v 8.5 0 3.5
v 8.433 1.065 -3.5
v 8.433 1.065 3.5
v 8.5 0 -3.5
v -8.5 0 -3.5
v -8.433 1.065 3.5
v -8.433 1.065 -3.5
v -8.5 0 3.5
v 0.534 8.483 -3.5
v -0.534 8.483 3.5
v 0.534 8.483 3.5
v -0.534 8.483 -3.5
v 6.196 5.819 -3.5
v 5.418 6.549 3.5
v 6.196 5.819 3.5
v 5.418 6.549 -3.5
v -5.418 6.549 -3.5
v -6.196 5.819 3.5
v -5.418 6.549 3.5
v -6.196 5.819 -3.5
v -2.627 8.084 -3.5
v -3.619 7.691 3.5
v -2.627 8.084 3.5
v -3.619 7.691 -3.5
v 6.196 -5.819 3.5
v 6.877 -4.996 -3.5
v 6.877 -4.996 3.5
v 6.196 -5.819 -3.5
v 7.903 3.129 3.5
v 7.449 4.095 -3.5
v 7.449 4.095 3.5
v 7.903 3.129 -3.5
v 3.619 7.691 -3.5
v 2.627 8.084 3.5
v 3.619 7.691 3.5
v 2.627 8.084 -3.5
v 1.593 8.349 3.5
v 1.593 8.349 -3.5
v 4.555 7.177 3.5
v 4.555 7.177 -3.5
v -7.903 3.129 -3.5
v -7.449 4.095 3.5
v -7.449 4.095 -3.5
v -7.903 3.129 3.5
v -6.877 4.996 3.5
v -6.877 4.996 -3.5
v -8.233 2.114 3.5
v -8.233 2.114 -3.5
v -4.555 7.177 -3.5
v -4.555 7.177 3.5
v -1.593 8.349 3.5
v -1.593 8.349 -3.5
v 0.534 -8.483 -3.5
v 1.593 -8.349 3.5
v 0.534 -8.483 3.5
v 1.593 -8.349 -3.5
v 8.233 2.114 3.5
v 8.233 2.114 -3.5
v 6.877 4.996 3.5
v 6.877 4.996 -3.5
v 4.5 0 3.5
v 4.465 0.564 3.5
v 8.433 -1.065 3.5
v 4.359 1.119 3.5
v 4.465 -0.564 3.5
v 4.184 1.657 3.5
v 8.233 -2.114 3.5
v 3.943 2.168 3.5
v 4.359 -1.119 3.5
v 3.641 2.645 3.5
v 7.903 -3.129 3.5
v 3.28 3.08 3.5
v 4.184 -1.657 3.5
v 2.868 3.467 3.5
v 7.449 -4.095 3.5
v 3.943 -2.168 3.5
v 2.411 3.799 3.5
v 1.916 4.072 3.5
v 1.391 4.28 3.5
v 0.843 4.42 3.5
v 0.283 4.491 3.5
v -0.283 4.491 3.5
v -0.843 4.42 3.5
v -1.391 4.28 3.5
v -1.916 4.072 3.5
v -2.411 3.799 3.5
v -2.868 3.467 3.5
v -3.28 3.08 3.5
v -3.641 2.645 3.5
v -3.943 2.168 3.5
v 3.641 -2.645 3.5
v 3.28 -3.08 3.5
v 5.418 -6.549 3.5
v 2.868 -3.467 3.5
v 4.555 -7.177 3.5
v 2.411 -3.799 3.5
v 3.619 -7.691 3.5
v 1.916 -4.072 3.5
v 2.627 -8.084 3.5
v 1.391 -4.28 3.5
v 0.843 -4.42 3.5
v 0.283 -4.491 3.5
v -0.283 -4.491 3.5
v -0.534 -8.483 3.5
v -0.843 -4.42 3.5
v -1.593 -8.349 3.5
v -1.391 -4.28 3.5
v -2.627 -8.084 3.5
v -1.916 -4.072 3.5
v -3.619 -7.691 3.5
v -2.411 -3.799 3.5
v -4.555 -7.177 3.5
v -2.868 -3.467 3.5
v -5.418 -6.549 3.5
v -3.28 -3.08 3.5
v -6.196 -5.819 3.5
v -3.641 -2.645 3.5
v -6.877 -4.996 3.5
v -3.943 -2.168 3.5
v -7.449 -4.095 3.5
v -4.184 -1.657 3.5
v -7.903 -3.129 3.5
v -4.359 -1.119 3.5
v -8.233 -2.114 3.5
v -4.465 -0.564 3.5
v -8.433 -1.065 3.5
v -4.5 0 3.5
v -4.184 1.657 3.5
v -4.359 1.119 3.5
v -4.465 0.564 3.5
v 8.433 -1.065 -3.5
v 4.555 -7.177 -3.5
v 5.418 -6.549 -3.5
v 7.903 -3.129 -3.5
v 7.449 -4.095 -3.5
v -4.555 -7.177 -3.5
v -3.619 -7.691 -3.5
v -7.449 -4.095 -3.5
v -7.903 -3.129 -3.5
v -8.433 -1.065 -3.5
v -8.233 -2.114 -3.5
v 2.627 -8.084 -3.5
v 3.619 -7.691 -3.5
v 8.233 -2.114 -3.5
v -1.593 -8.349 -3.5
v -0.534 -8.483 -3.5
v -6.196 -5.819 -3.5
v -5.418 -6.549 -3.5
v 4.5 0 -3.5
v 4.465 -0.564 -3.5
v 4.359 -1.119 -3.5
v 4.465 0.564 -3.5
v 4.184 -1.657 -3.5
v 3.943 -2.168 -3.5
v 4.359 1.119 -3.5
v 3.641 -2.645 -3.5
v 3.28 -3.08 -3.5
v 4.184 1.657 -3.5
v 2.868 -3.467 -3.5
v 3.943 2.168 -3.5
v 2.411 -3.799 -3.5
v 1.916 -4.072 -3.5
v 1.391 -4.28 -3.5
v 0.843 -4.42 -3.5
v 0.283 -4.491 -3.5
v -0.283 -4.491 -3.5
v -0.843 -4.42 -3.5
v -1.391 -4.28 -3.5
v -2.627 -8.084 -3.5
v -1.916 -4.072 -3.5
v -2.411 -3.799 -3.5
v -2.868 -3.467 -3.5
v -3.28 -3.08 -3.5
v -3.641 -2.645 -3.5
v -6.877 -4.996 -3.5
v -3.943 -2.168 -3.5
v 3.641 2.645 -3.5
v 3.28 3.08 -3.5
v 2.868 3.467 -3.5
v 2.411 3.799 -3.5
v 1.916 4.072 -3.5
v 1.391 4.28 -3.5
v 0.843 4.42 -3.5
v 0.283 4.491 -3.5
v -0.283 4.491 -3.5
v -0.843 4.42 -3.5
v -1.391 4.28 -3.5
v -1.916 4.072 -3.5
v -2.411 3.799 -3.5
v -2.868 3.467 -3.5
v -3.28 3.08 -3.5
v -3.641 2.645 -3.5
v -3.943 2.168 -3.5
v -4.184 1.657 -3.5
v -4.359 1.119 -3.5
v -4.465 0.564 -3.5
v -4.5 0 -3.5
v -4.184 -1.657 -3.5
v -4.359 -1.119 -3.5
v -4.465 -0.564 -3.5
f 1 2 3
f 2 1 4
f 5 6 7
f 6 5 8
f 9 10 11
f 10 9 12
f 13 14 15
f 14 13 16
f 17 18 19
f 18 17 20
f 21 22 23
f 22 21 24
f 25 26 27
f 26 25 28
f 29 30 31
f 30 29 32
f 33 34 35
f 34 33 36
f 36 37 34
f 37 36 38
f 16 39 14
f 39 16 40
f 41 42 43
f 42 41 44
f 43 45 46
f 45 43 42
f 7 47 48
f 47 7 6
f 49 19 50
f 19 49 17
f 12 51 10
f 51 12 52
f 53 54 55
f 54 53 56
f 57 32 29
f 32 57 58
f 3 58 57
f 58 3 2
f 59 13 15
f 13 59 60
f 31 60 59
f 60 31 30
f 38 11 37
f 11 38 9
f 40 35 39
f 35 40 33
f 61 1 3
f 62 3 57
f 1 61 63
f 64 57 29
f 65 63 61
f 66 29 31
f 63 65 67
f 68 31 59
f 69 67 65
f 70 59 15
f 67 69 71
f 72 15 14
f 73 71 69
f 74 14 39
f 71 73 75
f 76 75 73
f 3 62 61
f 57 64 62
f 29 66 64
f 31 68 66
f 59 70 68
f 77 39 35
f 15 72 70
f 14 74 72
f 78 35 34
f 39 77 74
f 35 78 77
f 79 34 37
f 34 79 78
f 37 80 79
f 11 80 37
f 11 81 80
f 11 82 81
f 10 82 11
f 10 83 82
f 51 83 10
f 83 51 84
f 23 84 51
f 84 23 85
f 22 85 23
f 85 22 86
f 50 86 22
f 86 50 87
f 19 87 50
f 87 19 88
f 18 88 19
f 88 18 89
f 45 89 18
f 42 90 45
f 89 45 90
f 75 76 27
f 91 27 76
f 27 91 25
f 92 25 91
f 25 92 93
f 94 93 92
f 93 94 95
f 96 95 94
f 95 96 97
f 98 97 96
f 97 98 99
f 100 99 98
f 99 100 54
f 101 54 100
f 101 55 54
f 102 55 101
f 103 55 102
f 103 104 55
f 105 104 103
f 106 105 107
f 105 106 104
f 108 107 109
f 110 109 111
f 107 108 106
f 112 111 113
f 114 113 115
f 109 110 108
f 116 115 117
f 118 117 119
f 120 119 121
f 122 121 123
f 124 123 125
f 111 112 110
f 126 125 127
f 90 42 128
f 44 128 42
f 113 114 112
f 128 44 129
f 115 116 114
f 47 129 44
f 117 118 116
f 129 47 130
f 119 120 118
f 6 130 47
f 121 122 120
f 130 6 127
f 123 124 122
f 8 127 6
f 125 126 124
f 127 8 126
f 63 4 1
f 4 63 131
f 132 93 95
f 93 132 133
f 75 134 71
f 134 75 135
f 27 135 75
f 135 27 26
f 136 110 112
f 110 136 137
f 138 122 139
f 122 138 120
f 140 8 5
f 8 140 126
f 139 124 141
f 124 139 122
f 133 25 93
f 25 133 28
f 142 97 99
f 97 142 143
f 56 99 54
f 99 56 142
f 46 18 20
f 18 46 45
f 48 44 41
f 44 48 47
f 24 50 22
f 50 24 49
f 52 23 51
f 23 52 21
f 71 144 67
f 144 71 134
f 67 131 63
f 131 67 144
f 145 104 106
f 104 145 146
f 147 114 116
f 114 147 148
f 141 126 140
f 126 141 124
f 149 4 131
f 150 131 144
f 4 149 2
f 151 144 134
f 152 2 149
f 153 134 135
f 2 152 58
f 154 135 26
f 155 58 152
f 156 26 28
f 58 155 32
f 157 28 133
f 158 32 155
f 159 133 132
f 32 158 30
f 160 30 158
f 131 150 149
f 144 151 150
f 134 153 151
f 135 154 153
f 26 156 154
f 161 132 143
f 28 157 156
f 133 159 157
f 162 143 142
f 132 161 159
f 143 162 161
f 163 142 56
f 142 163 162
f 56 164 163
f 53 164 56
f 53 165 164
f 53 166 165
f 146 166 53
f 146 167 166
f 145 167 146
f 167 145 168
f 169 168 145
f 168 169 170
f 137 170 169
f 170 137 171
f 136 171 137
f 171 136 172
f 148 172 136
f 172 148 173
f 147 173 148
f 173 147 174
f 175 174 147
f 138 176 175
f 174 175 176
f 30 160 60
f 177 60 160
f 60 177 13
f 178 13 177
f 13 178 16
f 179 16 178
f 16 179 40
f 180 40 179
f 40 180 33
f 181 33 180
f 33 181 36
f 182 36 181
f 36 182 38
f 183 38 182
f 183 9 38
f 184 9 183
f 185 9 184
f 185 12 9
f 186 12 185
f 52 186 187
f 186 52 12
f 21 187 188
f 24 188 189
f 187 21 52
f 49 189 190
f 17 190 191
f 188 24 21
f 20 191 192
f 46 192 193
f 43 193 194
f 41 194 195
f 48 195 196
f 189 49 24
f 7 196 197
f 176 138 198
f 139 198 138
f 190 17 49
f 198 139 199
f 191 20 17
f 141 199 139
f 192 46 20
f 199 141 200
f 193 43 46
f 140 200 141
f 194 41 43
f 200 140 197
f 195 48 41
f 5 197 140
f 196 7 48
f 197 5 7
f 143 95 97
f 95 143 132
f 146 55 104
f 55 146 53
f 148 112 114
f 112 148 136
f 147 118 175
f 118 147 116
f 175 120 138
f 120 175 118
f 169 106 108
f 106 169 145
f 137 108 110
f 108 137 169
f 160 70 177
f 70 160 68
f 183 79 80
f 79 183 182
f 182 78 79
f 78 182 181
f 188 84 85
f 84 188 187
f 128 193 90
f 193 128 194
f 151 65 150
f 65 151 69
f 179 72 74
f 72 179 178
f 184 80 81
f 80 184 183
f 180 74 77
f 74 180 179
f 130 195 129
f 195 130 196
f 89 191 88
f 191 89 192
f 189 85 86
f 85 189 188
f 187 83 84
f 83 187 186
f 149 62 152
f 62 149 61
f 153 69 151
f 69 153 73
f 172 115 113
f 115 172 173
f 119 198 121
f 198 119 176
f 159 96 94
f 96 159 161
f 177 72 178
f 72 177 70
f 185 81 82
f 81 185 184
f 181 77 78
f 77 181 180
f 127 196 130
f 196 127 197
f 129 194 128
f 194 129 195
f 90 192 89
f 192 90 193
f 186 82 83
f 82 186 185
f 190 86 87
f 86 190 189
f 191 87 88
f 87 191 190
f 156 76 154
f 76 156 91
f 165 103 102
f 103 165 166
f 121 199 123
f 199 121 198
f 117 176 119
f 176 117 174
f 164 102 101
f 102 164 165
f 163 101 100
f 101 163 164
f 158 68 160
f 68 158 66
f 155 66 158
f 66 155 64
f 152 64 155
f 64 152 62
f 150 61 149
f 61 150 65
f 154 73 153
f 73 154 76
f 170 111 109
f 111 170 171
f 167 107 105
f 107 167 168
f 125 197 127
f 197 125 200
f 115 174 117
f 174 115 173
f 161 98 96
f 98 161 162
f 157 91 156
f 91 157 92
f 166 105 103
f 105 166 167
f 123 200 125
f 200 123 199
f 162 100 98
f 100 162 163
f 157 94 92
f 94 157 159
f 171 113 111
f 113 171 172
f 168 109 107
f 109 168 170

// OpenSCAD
$fn = 50;


difference() {
	union() {
		translate(v = [0, 0, -3.5000000000]) {
			cylinder(h = 7, r = 8.5000000000);
		}
	}
	union() {
		translate(v = [0, 0, -100.0000000000]) {
			cylinder(h = 200, r = 4.5000000000);
		}
	}
}
